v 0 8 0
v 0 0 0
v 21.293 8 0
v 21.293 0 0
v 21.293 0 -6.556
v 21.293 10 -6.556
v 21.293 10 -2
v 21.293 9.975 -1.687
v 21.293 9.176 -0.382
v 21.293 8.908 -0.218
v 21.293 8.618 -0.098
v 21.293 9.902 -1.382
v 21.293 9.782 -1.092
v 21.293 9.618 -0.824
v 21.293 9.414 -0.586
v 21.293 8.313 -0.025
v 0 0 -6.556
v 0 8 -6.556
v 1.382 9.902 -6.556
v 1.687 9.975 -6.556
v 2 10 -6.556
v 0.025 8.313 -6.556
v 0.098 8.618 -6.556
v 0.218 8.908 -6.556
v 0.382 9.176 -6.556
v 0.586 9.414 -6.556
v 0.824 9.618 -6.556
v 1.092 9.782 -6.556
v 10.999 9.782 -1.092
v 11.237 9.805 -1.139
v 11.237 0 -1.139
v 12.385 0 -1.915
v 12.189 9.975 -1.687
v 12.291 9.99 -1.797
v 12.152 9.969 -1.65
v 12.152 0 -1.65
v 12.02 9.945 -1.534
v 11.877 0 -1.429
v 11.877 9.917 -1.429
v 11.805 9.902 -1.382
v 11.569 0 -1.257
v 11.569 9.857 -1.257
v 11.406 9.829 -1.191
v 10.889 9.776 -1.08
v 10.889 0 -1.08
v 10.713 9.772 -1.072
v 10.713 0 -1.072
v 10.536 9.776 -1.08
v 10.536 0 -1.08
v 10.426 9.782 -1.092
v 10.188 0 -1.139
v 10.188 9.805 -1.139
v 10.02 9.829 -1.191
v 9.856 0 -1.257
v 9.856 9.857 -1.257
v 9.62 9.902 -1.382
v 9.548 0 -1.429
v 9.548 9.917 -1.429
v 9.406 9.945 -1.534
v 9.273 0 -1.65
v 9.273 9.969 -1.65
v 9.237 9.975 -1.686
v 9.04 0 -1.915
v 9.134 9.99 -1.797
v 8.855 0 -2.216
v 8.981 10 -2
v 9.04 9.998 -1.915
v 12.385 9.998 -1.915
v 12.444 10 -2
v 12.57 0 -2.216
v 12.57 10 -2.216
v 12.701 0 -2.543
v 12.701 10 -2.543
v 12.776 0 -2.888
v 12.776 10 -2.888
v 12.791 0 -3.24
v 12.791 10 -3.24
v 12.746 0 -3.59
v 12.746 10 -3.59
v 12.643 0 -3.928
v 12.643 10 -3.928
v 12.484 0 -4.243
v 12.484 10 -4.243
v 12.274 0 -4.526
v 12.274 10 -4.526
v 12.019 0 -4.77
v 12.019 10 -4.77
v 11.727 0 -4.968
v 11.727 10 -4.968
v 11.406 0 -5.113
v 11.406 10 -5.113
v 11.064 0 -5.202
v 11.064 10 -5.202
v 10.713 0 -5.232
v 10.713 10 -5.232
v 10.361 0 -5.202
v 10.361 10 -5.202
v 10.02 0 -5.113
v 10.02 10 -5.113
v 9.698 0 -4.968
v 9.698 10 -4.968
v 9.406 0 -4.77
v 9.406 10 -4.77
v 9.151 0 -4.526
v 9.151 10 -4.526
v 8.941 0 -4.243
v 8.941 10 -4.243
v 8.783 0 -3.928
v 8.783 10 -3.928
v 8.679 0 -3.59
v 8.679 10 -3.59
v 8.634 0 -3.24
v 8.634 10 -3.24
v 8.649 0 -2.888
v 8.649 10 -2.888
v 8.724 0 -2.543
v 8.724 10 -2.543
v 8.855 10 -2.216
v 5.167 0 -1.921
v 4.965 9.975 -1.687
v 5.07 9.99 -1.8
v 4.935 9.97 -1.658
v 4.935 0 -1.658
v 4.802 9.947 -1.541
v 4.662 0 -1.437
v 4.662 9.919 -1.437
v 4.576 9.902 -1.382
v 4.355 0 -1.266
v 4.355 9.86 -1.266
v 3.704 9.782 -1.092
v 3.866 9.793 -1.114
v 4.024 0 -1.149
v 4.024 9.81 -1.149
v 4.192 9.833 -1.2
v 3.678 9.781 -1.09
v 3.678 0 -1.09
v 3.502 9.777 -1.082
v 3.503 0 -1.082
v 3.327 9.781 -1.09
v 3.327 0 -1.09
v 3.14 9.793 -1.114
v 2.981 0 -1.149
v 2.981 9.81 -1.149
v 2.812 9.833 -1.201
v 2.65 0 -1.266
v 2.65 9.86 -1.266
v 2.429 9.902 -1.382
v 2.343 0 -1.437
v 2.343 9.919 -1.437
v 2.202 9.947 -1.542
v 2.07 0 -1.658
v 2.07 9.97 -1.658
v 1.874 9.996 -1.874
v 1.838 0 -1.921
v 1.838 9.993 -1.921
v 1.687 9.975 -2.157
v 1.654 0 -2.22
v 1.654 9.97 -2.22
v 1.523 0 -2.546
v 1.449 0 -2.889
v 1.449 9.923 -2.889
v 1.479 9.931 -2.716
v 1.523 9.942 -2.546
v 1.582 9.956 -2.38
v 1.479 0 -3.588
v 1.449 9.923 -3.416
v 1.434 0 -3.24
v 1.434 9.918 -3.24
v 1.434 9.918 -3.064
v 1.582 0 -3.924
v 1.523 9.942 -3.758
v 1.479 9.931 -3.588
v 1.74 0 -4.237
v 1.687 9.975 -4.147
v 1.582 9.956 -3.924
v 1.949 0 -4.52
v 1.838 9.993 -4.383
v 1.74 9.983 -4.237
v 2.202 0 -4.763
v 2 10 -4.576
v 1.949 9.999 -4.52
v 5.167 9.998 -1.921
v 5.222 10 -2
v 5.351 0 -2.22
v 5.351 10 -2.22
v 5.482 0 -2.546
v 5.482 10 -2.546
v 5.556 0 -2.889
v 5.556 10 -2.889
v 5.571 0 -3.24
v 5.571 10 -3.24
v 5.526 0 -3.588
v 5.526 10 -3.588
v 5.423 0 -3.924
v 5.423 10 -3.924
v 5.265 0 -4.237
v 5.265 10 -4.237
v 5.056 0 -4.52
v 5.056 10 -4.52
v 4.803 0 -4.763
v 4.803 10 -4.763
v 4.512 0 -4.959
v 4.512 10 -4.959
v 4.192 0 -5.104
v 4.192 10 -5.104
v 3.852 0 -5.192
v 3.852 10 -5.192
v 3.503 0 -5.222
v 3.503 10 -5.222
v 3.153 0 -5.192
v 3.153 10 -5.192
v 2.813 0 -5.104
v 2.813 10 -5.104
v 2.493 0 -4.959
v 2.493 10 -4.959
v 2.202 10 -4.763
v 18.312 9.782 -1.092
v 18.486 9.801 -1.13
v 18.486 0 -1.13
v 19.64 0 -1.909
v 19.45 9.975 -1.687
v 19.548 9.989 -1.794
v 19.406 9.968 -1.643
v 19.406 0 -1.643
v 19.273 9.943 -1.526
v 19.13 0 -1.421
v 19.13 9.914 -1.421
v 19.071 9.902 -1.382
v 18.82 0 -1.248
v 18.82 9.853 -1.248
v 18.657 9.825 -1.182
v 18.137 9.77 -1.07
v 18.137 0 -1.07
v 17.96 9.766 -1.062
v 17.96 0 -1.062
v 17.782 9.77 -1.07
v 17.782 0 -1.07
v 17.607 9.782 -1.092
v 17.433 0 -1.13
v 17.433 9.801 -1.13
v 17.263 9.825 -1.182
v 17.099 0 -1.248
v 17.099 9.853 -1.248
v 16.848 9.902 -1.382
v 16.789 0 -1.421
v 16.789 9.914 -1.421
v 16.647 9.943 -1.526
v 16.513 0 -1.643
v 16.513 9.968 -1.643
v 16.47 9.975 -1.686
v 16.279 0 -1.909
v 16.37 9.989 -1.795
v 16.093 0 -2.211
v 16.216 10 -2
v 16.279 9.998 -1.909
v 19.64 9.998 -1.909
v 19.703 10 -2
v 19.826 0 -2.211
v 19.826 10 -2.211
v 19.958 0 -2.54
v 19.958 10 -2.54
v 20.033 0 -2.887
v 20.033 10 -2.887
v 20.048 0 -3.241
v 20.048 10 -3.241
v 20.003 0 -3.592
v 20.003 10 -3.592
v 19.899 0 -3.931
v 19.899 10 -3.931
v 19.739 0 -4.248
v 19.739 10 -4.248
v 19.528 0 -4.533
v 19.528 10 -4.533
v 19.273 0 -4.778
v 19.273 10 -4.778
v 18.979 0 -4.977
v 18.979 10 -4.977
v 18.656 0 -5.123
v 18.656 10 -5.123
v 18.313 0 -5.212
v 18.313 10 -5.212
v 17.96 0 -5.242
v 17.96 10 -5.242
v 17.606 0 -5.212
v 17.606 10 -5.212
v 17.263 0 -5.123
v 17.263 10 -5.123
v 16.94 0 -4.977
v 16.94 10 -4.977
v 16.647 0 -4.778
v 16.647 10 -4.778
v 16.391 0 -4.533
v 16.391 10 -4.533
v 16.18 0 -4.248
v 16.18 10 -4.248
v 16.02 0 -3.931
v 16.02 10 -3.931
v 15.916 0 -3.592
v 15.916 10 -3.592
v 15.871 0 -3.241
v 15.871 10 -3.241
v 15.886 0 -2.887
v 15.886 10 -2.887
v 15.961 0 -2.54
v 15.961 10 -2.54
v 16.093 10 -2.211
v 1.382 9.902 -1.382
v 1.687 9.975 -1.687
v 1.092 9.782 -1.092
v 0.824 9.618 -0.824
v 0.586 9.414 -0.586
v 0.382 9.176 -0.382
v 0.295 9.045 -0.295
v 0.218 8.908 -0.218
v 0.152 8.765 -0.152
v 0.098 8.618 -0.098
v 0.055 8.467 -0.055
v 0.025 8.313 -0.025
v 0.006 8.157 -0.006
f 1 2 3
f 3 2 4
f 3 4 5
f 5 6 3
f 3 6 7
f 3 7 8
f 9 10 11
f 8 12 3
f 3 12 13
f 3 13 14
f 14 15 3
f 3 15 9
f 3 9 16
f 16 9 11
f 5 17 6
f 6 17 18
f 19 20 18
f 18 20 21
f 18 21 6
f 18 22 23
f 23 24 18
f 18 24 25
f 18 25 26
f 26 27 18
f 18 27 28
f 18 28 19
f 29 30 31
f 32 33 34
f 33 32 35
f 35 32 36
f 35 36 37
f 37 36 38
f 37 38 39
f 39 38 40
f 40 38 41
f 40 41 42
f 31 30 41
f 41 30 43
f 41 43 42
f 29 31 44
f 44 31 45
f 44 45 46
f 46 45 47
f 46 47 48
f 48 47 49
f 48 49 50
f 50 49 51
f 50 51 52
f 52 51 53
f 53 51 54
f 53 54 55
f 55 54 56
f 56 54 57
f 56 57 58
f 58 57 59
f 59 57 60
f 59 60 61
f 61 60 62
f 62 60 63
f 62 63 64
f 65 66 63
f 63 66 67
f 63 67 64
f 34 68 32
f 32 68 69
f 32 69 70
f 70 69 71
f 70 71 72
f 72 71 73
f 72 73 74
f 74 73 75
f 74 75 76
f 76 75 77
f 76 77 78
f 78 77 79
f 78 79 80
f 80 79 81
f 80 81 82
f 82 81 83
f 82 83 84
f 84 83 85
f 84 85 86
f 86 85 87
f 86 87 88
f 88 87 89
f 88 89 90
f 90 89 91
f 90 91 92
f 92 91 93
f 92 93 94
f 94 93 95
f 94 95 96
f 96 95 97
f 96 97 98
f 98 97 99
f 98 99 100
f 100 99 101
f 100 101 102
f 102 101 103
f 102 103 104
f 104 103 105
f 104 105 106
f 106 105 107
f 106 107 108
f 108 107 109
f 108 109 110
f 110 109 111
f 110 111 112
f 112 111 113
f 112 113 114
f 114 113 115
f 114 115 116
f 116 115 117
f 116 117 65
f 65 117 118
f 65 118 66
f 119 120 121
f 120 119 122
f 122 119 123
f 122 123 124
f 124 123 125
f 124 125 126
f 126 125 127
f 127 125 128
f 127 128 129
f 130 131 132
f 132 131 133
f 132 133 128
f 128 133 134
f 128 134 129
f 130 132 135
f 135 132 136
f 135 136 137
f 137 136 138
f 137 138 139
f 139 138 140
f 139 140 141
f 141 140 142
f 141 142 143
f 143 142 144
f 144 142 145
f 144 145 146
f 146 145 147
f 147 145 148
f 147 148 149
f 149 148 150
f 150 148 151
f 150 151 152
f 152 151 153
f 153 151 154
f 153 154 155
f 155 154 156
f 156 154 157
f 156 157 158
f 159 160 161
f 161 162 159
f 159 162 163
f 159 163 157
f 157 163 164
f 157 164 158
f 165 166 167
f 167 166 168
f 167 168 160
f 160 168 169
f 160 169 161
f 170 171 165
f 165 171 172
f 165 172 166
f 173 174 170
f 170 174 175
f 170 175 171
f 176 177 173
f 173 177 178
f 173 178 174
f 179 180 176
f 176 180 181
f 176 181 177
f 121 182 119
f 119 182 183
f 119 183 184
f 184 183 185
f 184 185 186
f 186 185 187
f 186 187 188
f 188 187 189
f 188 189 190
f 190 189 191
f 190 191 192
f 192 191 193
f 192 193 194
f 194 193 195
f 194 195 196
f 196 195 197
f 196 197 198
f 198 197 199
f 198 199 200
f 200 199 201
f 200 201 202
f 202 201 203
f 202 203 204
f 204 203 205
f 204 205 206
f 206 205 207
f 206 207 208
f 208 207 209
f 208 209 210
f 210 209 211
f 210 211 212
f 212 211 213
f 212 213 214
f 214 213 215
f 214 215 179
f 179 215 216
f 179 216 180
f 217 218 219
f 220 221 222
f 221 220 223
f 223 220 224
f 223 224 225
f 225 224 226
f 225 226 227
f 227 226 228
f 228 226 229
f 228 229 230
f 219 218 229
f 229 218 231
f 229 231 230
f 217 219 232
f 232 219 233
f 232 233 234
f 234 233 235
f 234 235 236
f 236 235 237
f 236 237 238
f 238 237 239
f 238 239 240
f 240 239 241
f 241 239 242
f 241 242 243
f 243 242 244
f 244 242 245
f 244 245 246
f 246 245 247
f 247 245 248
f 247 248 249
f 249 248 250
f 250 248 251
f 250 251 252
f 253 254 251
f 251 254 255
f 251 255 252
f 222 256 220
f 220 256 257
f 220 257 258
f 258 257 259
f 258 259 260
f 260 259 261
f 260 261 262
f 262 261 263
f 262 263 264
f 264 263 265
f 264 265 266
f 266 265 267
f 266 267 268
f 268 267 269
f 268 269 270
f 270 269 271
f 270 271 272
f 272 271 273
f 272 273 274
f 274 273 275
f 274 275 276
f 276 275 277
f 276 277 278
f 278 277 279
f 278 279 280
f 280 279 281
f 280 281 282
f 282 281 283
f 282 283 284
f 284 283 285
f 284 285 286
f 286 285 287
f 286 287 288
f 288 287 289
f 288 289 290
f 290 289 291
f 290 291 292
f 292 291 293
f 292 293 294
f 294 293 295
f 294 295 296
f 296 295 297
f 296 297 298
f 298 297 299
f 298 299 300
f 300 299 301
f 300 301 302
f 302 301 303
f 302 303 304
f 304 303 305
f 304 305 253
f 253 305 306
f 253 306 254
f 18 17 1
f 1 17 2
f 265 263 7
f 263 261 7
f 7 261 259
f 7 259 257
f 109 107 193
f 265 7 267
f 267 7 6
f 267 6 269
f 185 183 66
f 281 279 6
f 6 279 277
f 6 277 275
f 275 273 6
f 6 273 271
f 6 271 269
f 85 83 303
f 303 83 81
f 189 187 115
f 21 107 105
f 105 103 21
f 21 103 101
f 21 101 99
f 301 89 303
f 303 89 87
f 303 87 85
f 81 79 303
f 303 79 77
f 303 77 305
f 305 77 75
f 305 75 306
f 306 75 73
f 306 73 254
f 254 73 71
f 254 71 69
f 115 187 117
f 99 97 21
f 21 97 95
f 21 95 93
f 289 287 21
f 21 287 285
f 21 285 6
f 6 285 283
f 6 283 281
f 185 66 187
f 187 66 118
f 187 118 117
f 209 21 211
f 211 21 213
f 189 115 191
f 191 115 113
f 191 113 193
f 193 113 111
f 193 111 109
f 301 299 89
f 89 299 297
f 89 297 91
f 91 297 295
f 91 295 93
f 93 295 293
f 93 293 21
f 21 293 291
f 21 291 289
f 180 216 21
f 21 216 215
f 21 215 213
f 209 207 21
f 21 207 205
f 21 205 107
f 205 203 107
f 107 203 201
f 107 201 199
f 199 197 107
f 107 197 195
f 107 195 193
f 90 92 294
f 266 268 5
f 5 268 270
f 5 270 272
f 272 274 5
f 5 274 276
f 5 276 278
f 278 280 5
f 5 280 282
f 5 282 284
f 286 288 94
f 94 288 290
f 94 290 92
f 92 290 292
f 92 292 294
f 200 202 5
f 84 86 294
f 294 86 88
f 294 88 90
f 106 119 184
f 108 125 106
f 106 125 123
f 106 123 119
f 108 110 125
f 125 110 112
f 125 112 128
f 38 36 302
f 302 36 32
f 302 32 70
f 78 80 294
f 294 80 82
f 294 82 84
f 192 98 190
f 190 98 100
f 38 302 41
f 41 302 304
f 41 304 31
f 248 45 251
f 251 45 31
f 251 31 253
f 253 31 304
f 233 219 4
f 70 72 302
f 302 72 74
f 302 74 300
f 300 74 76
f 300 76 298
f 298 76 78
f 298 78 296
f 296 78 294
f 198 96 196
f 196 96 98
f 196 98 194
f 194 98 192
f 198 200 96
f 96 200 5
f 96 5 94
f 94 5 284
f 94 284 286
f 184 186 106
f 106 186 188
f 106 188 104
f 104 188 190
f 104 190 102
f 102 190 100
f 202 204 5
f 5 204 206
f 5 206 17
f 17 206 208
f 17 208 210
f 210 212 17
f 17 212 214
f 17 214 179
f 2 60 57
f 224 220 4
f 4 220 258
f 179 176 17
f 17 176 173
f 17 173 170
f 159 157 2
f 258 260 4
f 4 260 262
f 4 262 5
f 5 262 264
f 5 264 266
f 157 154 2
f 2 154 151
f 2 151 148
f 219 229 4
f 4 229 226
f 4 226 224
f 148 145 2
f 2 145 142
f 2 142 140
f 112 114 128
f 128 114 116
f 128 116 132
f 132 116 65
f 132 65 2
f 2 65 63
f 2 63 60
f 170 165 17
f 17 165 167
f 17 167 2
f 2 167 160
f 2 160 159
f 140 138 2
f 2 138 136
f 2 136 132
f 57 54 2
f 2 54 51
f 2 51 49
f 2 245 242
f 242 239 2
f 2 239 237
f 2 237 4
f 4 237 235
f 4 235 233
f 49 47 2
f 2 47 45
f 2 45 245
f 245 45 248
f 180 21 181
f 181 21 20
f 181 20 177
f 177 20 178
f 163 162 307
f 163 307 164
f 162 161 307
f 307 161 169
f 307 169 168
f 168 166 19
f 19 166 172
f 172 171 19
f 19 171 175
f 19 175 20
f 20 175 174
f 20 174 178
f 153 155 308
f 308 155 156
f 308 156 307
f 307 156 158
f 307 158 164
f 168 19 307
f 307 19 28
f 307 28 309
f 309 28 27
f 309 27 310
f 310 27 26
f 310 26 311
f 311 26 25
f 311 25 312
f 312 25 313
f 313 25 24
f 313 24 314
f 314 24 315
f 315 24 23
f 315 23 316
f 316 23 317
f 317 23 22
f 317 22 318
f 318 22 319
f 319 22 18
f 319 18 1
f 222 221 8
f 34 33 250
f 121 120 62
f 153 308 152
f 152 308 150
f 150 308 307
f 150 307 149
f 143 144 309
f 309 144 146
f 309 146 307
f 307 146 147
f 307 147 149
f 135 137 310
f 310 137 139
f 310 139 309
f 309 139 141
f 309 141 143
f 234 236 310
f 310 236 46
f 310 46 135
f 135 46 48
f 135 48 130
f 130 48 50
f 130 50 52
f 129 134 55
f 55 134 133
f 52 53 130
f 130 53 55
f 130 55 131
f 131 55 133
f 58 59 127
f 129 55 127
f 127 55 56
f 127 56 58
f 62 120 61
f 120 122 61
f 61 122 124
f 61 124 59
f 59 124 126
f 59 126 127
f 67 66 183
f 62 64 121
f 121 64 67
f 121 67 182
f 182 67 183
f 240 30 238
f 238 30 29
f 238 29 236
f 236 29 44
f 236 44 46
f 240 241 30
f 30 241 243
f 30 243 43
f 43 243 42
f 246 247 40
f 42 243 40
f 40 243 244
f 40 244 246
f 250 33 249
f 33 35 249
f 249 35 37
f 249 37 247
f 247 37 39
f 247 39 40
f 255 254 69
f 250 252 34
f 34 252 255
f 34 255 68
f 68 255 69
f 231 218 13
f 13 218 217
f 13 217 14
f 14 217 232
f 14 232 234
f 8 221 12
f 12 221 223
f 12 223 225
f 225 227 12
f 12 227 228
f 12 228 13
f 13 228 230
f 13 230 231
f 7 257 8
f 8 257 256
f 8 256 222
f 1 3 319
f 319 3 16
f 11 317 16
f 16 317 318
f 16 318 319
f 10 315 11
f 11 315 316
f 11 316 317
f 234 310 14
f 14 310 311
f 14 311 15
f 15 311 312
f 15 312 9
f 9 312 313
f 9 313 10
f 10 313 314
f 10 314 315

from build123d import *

# Parameters (mm, degrees)
SKETCH1_W           = 21.293186277
SKETCH1_H           = 6.556248908
SKETCH1_R           = 2.09
SKETCH1_R_2         = 2.07
SKETCH1_R_3         = 2.08
BOSS_EXTRUDE1_DEPTH = 10
FILLET1_R           = 2


with BuildPart() as part:
    # Sketch1 → Boss-Extrude1 (new body)
    with BuildSketch(Plane(origin=(0, 0, 0), x_dir=(1, 0, 0), z_dir=(0, 1, 0))):
        with Locations((10.646593139, 3.278124454)):
            Rectangle(SKETCH1_W, SKETCH1_H)
        with Locations(Location((17.959518774, 3.152151811, 0), (0, 0, 270))):
            Circle(SKETCH1_R, mode=Mode.SUBTRACT)
        with Locations(Location((3.502477391, 3.152151811, 0), (0, 0, 270))):
            Circle(SKETCH1_R_2, mode=Mode.SUBTRACT)
        with Locations(Location((10.712545691, 3.152151811, 0), (0, 0, 270))):
            Circle(SKETCH1_R_3, mode=Mode.SUBTRACT)
    extrude(amount=BOSS_EXTRUDE1_DEPTH)

    # Fillet1
    # the kernel refuses this fillet: 2 mm, written as the material it takes off along each edge
    with BuildSketch(Plane(origin=(-5, 10, 0), x_dir=(0, -1, 0), z_dir=(1, 0, 0))) as fillet1_piece_1:
        with BuildLine():
            CenterArc((FILLET1_R, FILLET1_R), FILLET1_R, 180, 90)
            Line((0, FILLET1_R), (0, 0))
            Line((0, 0), (FILLET1_R, 0))
        make_face()
    extrude(amount=31.293186277, mode=Mode.SUBTRACT)
    with BuildSketch(Plane(origin=(0, 10, -11.556248908), x_dir=(0, -1, 0), z_dir=(0, 0, 1))) as fillet1_piece_2:
        with BuildLine():
            CenterArc((FILLET1_R, FILLET1_R), FILLET1_R, 180, 90)
            Line((0, FILLET1_R), (0, 0))
            Line((0, 0), (FILLET1_R, 0))
        make_face()
    extrude(amount=16.556248908, mode=Mode.SUBTRACT)


solid = part.part
